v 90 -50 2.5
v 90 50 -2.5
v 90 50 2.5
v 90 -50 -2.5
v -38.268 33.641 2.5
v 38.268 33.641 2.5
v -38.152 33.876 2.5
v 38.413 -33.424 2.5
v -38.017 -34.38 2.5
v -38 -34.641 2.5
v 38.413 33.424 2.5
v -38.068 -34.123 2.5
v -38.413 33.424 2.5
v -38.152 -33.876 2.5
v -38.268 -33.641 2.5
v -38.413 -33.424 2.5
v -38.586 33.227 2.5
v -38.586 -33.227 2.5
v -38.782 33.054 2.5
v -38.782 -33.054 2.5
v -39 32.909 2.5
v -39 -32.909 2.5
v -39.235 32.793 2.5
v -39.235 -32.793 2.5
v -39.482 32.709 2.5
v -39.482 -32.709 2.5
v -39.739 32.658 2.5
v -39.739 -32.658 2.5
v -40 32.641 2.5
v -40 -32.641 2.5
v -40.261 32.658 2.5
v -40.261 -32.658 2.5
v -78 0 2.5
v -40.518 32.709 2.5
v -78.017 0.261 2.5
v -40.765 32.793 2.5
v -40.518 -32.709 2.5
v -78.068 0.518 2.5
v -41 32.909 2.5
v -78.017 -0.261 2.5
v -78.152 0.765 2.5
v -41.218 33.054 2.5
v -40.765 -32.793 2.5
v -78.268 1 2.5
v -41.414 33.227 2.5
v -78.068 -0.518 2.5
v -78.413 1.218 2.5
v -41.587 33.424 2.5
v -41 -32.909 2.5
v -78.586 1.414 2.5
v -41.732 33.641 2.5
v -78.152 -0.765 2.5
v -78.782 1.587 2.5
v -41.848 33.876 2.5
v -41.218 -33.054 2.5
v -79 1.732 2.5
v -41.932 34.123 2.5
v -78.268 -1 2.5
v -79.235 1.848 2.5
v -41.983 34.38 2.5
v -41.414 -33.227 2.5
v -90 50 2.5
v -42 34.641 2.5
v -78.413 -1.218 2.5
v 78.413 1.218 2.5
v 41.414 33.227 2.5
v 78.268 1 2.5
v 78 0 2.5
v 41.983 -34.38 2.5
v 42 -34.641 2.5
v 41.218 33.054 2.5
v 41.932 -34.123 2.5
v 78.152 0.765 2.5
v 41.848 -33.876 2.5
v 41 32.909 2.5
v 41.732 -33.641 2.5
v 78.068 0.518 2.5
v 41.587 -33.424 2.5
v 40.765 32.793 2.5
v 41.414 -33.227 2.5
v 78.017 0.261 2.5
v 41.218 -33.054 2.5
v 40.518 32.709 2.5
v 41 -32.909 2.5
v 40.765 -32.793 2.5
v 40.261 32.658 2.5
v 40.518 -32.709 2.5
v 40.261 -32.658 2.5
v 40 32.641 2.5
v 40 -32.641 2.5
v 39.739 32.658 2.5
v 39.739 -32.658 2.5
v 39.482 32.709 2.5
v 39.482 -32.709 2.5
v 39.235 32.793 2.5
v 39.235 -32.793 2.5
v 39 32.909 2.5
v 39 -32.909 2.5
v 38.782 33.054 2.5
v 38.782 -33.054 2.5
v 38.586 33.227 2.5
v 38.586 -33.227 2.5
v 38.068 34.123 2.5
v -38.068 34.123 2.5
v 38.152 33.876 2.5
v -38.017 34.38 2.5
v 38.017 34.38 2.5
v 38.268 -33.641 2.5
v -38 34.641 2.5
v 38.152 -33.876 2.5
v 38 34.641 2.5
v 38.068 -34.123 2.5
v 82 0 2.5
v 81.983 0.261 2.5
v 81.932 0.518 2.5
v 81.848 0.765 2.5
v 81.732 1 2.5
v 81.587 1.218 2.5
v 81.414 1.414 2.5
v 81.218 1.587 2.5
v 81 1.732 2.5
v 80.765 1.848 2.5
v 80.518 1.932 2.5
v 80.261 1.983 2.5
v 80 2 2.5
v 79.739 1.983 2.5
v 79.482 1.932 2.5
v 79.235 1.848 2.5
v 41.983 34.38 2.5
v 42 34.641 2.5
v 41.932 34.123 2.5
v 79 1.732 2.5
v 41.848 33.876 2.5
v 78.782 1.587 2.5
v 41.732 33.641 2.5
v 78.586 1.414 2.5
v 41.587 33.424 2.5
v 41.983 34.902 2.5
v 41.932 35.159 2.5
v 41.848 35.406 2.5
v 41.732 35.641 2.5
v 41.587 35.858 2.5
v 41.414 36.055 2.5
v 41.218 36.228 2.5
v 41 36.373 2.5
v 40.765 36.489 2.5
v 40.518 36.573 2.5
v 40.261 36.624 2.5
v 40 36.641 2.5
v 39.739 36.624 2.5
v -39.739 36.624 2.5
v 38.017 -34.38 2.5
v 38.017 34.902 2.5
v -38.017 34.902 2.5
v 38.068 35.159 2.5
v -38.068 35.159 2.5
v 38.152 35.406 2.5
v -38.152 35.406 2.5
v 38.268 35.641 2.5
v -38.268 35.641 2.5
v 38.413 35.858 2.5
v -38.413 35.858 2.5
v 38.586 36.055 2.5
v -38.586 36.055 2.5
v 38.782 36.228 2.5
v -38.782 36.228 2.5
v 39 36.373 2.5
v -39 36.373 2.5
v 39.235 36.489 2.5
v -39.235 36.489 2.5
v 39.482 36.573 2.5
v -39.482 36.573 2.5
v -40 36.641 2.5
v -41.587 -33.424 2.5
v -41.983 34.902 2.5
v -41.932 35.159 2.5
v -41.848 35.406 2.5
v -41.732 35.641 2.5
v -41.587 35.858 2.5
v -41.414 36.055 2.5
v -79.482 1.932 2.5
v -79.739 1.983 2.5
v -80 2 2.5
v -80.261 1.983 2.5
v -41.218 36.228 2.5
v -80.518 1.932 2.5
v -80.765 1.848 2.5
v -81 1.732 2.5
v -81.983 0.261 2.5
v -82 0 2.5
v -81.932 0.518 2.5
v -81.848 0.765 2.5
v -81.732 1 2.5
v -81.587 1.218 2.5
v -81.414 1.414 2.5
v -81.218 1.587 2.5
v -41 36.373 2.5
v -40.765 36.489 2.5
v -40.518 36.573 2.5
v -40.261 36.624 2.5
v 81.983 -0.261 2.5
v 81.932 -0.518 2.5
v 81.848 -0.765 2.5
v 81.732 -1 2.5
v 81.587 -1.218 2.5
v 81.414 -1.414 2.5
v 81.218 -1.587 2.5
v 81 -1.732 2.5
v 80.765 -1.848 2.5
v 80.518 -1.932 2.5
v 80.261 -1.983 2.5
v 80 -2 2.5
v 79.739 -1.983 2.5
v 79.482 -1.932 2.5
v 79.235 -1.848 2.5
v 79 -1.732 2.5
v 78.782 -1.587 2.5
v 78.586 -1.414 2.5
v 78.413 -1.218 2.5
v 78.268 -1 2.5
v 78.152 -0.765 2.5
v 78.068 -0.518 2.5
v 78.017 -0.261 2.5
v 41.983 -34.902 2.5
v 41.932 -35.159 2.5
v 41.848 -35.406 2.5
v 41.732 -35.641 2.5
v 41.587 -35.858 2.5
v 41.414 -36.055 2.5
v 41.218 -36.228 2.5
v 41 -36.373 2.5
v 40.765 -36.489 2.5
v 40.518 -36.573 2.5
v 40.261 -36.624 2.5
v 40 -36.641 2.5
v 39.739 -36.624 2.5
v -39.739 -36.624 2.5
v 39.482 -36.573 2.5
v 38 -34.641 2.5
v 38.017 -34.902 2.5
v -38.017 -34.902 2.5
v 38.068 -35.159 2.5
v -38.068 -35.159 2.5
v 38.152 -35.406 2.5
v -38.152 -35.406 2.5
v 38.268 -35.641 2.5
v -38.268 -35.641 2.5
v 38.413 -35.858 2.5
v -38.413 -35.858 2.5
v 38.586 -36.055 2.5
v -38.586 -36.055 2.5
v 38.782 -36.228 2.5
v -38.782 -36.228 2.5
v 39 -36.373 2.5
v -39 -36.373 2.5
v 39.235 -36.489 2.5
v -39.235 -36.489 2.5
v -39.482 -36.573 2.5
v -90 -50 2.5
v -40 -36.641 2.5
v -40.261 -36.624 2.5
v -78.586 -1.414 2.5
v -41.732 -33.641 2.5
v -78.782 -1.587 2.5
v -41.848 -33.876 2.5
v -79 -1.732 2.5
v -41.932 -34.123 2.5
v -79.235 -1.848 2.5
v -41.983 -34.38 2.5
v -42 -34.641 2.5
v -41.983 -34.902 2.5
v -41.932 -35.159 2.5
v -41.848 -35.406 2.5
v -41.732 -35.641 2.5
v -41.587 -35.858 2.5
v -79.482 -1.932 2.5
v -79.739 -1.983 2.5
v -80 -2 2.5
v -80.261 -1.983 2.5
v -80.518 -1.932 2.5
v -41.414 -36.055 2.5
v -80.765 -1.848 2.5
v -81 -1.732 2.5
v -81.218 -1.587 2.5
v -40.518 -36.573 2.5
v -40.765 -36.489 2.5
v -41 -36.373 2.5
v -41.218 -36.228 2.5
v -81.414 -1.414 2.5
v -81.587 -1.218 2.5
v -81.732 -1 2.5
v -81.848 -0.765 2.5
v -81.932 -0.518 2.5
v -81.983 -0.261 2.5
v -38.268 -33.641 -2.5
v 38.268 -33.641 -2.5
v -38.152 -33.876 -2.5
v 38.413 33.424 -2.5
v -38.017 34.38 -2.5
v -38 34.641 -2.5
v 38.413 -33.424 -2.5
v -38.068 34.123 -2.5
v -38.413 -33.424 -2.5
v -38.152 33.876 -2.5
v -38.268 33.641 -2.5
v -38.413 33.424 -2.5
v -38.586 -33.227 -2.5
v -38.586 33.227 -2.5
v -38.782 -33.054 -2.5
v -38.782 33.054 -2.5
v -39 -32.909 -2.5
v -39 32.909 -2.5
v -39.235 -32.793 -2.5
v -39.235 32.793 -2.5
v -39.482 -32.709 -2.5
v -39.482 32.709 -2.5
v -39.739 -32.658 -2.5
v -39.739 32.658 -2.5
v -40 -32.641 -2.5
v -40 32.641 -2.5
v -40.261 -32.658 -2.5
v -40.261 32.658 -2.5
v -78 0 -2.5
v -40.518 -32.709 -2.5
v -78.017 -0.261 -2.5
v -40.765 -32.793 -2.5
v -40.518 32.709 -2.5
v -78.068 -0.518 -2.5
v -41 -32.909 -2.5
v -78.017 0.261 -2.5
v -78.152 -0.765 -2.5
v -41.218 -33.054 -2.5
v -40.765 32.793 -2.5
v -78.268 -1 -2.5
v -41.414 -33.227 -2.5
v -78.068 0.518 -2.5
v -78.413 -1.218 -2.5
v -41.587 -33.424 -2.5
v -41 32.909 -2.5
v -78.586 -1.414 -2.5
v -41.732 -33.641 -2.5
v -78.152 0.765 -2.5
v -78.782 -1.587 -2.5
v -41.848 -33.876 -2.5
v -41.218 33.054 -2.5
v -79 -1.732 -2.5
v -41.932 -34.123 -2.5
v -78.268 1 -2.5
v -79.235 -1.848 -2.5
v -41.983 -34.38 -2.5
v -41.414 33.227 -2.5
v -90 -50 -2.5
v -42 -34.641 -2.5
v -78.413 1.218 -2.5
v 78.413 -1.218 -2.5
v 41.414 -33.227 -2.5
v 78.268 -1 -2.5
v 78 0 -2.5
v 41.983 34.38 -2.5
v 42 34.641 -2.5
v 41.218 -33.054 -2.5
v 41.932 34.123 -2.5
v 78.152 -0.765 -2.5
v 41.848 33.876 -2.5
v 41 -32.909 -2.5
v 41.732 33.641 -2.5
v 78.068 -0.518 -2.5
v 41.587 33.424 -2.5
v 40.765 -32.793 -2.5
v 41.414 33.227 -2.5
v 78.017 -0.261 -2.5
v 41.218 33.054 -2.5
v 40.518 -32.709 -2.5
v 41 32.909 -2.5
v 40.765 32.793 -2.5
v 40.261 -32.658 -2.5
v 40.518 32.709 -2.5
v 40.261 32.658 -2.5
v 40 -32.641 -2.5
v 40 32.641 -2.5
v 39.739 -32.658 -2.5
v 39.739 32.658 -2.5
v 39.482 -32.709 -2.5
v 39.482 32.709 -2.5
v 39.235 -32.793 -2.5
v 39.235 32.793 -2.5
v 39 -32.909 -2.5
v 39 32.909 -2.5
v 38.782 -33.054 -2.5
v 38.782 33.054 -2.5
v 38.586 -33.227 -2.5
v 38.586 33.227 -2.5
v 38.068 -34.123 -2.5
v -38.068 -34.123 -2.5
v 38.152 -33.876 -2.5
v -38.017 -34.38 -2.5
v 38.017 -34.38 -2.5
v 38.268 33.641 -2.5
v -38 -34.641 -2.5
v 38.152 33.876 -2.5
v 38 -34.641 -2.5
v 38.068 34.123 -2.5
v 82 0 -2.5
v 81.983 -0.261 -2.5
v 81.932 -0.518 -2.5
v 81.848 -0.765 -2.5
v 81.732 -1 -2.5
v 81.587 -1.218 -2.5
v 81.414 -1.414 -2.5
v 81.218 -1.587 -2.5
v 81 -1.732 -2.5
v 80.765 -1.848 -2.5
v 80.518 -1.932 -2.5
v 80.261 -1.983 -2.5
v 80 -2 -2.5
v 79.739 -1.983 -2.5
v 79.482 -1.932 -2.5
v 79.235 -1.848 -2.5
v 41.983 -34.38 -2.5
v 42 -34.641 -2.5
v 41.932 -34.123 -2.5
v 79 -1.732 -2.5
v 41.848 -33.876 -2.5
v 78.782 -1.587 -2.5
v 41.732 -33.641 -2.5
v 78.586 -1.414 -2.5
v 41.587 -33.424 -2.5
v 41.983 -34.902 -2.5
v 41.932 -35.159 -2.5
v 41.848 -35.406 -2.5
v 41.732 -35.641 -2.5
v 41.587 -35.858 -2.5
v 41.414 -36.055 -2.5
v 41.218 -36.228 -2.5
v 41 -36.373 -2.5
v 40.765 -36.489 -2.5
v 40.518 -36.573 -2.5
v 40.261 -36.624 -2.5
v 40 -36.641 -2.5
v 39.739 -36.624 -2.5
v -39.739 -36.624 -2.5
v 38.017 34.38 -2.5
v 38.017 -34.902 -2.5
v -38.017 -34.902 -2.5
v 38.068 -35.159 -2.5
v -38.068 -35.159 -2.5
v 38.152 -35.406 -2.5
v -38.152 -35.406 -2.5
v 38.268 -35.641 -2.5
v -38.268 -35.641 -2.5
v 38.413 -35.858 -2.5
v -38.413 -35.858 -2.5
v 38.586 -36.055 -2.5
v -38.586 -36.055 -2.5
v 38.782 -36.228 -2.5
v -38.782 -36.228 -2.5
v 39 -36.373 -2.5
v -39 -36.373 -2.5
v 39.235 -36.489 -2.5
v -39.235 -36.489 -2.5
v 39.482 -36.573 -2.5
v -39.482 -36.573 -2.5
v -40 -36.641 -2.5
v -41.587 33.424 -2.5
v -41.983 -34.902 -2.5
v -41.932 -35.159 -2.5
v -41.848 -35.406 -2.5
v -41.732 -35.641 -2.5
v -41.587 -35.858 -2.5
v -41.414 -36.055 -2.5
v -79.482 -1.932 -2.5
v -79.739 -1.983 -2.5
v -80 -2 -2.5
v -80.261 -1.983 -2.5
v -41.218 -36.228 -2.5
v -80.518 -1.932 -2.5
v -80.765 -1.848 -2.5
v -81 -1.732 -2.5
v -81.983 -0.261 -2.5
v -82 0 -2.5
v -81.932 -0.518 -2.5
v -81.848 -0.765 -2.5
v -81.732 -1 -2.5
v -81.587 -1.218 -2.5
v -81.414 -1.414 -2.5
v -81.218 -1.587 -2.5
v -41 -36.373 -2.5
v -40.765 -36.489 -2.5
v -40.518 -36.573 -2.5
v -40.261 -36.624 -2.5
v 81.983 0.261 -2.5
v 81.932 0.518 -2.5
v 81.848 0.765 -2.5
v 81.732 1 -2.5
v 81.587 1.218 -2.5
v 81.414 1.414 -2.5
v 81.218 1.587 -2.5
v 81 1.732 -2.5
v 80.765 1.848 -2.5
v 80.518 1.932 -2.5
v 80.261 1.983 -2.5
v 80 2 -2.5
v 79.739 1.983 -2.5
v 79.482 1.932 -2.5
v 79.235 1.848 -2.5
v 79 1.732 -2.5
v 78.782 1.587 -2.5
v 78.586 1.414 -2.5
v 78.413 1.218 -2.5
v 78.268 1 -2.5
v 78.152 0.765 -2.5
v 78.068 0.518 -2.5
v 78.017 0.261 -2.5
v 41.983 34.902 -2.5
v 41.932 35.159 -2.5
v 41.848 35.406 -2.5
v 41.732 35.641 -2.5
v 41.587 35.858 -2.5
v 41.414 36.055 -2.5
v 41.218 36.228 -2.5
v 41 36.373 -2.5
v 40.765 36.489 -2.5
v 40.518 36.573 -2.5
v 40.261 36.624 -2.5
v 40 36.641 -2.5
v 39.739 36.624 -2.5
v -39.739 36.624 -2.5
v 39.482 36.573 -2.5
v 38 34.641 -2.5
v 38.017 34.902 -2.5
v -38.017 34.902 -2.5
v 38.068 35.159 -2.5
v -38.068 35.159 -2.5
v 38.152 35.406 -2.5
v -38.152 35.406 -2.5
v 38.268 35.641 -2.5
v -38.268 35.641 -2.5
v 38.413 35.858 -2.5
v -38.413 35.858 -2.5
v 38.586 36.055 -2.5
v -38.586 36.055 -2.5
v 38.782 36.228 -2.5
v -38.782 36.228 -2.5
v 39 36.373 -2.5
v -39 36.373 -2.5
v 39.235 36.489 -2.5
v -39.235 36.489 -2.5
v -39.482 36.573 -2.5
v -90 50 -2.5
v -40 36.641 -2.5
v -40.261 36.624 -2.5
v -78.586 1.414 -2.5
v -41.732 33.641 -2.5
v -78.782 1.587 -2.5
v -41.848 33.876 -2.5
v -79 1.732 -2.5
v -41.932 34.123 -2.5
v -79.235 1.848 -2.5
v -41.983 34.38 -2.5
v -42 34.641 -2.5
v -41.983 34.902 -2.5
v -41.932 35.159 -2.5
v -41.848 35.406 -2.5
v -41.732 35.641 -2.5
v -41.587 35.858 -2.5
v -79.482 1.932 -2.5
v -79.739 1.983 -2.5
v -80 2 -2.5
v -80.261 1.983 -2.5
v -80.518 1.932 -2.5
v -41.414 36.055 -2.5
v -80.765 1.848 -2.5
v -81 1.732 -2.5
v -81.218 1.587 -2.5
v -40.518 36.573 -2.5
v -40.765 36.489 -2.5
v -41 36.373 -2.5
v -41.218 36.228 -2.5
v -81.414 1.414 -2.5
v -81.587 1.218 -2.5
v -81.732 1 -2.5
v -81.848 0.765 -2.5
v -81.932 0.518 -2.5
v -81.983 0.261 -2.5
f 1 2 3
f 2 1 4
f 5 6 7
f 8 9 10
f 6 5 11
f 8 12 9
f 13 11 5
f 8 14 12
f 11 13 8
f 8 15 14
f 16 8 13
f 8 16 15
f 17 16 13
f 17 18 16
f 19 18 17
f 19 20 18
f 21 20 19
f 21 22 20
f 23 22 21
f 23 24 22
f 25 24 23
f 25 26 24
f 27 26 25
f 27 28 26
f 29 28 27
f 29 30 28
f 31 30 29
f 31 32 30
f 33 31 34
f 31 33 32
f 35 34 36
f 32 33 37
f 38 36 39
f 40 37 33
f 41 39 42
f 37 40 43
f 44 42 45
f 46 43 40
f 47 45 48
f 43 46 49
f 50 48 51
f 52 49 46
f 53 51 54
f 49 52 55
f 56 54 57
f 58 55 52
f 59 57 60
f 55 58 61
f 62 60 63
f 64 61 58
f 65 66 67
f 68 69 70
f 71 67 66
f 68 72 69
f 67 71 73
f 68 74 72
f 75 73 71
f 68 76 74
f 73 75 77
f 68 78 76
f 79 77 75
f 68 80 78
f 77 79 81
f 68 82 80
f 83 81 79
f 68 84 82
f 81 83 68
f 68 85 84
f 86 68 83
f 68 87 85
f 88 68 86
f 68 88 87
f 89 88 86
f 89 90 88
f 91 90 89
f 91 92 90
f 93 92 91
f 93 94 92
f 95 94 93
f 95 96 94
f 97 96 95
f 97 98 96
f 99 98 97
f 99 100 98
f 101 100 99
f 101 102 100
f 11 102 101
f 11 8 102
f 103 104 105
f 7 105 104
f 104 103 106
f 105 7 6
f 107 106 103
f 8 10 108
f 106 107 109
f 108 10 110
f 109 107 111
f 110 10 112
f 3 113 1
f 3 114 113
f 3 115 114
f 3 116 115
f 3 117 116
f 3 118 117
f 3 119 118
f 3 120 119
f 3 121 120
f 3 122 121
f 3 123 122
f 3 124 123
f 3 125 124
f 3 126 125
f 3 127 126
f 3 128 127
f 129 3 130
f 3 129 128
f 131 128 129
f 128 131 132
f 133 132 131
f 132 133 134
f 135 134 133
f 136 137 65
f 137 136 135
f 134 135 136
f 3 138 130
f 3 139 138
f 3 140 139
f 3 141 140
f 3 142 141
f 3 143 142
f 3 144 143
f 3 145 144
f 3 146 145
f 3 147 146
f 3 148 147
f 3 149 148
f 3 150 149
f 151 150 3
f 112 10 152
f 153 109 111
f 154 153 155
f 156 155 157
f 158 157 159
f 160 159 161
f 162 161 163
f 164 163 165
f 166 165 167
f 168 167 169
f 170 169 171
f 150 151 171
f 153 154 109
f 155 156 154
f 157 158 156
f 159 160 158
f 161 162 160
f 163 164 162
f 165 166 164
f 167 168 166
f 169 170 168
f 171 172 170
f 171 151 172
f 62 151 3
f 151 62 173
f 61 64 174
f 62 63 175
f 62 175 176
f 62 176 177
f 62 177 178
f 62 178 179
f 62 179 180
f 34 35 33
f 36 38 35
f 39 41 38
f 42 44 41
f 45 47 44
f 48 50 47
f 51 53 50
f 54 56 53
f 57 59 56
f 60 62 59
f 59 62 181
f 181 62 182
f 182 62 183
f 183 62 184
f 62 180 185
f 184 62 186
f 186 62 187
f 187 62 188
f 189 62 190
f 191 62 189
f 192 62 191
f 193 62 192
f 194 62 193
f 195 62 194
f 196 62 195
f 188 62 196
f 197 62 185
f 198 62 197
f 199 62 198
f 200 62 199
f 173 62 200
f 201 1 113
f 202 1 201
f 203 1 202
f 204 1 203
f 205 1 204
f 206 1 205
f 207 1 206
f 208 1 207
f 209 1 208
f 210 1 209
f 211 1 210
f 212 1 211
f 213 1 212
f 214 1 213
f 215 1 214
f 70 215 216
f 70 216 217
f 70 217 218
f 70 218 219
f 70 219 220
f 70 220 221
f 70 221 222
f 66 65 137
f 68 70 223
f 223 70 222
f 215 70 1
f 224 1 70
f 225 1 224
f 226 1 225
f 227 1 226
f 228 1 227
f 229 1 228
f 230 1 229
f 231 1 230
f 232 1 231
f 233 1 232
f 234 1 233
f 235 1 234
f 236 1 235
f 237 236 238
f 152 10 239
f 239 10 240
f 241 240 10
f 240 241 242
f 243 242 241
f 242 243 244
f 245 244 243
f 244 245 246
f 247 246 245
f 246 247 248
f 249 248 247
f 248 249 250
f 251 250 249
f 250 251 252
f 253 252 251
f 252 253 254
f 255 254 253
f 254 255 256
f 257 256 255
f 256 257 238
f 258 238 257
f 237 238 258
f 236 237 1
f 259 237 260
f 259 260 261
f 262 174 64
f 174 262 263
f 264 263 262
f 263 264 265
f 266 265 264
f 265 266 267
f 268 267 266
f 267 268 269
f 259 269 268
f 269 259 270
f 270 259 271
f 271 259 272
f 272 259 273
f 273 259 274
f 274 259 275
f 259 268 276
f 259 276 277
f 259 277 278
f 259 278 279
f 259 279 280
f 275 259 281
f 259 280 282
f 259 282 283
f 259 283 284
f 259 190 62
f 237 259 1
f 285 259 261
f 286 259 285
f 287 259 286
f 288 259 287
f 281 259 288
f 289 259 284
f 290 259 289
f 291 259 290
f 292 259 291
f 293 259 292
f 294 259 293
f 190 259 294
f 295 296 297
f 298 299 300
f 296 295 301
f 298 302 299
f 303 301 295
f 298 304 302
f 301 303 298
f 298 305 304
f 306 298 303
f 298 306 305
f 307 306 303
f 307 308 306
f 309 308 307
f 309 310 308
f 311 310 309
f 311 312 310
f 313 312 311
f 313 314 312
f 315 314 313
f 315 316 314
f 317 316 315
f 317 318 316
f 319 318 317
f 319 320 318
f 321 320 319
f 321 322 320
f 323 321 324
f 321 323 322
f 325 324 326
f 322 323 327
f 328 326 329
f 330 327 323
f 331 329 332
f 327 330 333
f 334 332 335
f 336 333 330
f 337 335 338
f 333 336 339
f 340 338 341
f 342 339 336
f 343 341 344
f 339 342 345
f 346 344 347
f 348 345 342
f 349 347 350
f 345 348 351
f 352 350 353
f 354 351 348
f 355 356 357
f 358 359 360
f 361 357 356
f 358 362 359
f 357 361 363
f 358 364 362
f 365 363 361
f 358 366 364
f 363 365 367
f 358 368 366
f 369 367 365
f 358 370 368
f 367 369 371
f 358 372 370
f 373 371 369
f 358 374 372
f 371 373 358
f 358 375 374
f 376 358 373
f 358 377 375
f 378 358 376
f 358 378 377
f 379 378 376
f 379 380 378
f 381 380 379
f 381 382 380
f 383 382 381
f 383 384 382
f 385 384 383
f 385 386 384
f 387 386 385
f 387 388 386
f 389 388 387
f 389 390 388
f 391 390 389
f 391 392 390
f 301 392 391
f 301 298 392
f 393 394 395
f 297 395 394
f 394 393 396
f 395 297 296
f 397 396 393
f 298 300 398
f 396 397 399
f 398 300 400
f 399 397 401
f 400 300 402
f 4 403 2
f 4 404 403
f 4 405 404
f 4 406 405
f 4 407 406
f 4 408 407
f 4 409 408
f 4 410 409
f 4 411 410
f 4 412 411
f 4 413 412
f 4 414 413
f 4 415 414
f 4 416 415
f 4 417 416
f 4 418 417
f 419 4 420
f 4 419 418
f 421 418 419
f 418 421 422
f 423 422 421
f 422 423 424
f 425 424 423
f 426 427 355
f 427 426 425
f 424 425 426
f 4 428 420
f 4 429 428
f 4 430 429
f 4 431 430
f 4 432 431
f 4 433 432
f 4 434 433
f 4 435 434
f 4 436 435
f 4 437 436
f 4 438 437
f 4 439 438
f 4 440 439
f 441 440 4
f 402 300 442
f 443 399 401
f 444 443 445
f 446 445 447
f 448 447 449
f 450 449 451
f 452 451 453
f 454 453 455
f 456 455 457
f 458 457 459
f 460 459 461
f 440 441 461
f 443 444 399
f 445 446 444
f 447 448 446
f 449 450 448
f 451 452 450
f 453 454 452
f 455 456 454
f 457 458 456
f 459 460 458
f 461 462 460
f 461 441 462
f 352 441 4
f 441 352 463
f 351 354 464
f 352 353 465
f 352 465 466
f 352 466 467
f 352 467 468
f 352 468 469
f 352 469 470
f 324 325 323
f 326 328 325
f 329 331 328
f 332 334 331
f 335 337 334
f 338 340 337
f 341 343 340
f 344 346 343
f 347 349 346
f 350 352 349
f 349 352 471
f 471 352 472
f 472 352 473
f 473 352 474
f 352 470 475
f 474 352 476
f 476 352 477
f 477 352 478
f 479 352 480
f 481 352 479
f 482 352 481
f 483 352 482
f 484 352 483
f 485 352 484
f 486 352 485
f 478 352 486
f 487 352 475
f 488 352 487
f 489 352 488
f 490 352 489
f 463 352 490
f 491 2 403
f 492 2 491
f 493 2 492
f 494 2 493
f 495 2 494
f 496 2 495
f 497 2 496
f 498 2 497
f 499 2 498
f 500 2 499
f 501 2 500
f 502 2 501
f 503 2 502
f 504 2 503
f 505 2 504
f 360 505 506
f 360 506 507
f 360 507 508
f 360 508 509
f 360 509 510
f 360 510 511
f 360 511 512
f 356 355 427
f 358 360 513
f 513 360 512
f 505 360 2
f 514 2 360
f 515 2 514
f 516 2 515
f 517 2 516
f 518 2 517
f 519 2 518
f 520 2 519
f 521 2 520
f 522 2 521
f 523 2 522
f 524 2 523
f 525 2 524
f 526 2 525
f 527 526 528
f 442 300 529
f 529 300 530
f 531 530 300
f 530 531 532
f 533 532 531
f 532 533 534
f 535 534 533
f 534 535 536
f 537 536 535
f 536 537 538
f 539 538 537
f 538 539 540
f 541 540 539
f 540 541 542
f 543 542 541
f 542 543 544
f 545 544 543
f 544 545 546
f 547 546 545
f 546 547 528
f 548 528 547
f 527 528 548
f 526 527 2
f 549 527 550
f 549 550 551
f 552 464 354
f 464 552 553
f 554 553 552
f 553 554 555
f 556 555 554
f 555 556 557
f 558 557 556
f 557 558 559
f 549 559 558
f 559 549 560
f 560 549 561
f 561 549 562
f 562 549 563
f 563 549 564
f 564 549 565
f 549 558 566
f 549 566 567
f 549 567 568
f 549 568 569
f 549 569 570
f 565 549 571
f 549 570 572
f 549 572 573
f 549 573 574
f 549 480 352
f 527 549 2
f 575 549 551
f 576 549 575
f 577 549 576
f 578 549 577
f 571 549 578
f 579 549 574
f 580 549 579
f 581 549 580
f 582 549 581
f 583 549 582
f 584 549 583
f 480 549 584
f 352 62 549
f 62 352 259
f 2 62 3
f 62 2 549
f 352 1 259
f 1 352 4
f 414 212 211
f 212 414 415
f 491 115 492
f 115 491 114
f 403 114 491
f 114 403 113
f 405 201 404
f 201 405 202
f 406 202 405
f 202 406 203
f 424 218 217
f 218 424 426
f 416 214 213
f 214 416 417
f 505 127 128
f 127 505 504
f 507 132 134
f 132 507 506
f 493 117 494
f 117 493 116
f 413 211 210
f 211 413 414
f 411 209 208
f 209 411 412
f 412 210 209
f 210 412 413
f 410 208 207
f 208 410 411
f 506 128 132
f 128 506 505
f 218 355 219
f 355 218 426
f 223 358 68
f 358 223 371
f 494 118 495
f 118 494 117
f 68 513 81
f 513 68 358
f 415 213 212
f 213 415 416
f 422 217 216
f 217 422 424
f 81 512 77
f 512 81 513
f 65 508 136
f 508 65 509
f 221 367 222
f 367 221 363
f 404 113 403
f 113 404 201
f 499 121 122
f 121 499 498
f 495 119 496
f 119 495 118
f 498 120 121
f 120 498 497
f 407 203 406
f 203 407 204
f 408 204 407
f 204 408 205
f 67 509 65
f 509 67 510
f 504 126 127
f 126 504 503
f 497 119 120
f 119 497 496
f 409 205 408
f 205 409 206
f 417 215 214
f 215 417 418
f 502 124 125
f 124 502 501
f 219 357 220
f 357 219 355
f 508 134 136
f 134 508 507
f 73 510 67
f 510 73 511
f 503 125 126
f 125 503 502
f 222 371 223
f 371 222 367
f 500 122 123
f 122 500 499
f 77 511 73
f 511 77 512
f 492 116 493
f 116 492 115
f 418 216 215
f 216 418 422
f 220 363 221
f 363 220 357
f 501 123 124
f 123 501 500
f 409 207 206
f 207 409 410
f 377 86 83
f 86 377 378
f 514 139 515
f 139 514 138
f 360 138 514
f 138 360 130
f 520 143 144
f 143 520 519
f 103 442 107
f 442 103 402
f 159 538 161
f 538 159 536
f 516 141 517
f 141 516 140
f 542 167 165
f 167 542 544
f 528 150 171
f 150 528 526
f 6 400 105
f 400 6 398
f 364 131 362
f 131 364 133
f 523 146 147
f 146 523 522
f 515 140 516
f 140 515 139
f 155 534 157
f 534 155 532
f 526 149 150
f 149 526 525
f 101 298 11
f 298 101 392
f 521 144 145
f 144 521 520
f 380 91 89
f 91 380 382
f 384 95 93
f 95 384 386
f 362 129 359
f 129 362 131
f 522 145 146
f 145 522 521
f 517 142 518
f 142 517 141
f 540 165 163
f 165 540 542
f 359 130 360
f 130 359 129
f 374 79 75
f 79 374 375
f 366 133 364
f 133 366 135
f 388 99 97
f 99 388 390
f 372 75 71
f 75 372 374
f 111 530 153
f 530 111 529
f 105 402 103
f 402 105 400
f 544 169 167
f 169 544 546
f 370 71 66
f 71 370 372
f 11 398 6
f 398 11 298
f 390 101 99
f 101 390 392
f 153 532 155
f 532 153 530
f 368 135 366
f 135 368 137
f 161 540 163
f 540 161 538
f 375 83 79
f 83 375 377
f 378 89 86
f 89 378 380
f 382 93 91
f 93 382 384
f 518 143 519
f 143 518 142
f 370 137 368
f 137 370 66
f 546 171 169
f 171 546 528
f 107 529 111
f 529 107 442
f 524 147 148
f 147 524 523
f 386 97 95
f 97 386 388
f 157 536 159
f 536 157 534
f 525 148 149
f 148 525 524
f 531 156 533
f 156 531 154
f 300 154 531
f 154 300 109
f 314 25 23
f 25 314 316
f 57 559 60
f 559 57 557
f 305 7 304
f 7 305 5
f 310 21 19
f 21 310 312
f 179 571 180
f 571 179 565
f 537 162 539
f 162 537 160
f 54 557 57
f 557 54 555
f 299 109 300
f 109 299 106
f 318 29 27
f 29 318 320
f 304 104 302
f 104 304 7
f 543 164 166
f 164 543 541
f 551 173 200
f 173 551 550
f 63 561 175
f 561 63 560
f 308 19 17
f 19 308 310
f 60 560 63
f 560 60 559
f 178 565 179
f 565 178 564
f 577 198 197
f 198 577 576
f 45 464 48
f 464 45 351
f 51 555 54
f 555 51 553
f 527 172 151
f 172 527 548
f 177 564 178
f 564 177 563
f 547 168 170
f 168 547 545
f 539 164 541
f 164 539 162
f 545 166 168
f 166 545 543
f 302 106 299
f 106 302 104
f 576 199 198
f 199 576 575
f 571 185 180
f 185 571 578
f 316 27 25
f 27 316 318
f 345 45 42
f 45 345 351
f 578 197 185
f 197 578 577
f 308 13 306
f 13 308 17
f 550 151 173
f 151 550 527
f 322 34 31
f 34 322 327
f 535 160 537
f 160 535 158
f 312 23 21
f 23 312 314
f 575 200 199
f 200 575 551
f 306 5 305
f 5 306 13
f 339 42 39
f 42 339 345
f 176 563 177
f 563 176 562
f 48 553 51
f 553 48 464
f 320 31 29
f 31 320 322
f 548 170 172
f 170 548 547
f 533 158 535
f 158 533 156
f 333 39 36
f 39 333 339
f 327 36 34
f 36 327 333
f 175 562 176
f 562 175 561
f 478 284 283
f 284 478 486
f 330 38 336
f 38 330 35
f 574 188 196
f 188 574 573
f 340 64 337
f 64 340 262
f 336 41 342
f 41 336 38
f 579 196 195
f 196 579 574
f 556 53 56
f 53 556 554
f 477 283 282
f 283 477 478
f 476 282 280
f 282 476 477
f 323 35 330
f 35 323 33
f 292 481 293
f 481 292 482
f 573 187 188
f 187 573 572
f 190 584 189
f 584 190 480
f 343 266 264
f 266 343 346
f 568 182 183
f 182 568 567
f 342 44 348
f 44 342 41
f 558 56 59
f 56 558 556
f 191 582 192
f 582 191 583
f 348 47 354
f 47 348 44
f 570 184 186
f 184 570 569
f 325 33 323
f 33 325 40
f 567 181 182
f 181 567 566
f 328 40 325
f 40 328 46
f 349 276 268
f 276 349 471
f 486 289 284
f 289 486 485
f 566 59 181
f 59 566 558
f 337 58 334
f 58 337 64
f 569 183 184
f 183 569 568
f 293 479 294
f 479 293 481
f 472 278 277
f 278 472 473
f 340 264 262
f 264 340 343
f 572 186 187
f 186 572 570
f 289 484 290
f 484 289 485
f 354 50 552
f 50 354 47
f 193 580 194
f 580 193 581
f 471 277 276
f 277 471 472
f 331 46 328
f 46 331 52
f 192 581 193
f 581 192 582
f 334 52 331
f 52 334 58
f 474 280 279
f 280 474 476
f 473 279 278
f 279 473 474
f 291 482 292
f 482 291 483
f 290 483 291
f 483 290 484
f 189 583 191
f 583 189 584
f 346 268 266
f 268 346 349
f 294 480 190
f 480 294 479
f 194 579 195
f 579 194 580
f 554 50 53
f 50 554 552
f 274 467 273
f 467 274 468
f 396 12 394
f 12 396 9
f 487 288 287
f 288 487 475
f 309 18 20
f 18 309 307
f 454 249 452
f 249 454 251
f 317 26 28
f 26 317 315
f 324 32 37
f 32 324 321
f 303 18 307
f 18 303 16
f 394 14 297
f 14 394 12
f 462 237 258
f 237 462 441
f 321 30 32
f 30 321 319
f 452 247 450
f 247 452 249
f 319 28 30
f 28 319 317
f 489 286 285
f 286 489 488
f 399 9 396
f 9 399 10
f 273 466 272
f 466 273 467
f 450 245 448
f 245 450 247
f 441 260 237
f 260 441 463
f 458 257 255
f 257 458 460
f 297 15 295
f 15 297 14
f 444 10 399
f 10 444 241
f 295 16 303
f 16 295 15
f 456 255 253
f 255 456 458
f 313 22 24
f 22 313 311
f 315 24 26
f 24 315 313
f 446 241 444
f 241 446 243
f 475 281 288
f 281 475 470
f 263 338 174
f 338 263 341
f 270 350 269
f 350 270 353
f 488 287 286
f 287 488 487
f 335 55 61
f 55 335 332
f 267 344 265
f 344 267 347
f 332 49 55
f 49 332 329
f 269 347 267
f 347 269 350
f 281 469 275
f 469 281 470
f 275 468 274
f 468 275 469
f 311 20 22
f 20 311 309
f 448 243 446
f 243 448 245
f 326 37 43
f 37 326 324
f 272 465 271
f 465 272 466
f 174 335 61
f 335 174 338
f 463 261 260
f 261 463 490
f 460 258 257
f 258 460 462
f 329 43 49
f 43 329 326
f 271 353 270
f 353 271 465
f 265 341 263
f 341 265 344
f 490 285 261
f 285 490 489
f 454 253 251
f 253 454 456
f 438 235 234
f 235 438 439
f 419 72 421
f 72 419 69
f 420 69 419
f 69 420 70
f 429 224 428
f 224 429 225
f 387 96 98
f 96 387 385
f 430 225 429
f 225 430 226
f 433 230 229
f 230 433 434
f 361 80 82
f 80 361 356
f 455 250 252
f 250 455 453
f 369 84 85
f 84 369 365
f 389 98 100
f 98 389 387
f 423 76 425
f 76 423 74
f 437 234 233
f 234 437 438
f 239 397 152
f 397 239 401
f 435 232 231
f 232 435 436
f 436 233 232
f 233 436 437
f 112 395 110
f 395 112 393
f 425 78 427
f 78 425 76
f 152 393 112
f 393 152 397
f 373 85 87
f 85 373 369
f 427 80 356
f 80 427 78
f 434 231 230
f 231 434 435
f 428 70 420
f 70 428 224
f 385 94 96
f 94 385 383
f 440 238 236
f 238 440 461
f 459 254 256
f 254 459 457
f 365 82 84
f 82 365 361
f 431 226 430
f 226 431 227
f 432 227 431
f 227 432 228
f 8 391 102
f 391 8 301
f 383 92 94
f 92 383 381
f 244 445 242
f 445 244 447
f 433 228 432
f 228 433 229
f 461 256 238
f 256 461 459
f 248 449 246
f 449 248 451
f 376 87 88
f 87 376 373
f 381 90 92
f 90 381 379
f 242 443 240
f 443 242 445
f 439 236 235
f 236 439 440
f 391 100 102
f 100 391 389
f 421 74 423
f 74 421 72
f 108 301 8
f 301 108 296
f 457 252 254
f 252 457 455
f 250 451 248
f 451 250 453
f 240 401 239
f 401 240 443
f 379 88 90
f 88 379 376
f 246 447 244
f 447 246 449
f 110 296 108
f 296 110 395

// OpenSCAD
// ========================================
// a 180 x 100 x 5 mm plate with six 4 mm holes
// NeuroCAD canonical IR; dimensions are millimetres
// ========================================
$fn = 48;

difference() {
  cube(size=[180, 100, 5], center=true);
  translate([80, 0, 0]) {
    cylinder(r=2, h=7, center=true);
  }
  translate([40, 34.6410161513775, 0]) {
    cylinder(r=2, h=7, center=true);
  }
  translate([-40, 34.6410161513775, 0]) {
    cylinder(r=2, h=7, center=true);
  }
  translate([-80, 0, 0]) {
    cylinder(r=2, h=7, center=true);
  }
  translate([-40, -34.6410161513775, 0]) {
    cylinder(r=2, h=7, center=true);
  }
  translate([40, -34.6410161513775, 0]) {
    cylinder(r=2, h=7, center=true);
  }
}
